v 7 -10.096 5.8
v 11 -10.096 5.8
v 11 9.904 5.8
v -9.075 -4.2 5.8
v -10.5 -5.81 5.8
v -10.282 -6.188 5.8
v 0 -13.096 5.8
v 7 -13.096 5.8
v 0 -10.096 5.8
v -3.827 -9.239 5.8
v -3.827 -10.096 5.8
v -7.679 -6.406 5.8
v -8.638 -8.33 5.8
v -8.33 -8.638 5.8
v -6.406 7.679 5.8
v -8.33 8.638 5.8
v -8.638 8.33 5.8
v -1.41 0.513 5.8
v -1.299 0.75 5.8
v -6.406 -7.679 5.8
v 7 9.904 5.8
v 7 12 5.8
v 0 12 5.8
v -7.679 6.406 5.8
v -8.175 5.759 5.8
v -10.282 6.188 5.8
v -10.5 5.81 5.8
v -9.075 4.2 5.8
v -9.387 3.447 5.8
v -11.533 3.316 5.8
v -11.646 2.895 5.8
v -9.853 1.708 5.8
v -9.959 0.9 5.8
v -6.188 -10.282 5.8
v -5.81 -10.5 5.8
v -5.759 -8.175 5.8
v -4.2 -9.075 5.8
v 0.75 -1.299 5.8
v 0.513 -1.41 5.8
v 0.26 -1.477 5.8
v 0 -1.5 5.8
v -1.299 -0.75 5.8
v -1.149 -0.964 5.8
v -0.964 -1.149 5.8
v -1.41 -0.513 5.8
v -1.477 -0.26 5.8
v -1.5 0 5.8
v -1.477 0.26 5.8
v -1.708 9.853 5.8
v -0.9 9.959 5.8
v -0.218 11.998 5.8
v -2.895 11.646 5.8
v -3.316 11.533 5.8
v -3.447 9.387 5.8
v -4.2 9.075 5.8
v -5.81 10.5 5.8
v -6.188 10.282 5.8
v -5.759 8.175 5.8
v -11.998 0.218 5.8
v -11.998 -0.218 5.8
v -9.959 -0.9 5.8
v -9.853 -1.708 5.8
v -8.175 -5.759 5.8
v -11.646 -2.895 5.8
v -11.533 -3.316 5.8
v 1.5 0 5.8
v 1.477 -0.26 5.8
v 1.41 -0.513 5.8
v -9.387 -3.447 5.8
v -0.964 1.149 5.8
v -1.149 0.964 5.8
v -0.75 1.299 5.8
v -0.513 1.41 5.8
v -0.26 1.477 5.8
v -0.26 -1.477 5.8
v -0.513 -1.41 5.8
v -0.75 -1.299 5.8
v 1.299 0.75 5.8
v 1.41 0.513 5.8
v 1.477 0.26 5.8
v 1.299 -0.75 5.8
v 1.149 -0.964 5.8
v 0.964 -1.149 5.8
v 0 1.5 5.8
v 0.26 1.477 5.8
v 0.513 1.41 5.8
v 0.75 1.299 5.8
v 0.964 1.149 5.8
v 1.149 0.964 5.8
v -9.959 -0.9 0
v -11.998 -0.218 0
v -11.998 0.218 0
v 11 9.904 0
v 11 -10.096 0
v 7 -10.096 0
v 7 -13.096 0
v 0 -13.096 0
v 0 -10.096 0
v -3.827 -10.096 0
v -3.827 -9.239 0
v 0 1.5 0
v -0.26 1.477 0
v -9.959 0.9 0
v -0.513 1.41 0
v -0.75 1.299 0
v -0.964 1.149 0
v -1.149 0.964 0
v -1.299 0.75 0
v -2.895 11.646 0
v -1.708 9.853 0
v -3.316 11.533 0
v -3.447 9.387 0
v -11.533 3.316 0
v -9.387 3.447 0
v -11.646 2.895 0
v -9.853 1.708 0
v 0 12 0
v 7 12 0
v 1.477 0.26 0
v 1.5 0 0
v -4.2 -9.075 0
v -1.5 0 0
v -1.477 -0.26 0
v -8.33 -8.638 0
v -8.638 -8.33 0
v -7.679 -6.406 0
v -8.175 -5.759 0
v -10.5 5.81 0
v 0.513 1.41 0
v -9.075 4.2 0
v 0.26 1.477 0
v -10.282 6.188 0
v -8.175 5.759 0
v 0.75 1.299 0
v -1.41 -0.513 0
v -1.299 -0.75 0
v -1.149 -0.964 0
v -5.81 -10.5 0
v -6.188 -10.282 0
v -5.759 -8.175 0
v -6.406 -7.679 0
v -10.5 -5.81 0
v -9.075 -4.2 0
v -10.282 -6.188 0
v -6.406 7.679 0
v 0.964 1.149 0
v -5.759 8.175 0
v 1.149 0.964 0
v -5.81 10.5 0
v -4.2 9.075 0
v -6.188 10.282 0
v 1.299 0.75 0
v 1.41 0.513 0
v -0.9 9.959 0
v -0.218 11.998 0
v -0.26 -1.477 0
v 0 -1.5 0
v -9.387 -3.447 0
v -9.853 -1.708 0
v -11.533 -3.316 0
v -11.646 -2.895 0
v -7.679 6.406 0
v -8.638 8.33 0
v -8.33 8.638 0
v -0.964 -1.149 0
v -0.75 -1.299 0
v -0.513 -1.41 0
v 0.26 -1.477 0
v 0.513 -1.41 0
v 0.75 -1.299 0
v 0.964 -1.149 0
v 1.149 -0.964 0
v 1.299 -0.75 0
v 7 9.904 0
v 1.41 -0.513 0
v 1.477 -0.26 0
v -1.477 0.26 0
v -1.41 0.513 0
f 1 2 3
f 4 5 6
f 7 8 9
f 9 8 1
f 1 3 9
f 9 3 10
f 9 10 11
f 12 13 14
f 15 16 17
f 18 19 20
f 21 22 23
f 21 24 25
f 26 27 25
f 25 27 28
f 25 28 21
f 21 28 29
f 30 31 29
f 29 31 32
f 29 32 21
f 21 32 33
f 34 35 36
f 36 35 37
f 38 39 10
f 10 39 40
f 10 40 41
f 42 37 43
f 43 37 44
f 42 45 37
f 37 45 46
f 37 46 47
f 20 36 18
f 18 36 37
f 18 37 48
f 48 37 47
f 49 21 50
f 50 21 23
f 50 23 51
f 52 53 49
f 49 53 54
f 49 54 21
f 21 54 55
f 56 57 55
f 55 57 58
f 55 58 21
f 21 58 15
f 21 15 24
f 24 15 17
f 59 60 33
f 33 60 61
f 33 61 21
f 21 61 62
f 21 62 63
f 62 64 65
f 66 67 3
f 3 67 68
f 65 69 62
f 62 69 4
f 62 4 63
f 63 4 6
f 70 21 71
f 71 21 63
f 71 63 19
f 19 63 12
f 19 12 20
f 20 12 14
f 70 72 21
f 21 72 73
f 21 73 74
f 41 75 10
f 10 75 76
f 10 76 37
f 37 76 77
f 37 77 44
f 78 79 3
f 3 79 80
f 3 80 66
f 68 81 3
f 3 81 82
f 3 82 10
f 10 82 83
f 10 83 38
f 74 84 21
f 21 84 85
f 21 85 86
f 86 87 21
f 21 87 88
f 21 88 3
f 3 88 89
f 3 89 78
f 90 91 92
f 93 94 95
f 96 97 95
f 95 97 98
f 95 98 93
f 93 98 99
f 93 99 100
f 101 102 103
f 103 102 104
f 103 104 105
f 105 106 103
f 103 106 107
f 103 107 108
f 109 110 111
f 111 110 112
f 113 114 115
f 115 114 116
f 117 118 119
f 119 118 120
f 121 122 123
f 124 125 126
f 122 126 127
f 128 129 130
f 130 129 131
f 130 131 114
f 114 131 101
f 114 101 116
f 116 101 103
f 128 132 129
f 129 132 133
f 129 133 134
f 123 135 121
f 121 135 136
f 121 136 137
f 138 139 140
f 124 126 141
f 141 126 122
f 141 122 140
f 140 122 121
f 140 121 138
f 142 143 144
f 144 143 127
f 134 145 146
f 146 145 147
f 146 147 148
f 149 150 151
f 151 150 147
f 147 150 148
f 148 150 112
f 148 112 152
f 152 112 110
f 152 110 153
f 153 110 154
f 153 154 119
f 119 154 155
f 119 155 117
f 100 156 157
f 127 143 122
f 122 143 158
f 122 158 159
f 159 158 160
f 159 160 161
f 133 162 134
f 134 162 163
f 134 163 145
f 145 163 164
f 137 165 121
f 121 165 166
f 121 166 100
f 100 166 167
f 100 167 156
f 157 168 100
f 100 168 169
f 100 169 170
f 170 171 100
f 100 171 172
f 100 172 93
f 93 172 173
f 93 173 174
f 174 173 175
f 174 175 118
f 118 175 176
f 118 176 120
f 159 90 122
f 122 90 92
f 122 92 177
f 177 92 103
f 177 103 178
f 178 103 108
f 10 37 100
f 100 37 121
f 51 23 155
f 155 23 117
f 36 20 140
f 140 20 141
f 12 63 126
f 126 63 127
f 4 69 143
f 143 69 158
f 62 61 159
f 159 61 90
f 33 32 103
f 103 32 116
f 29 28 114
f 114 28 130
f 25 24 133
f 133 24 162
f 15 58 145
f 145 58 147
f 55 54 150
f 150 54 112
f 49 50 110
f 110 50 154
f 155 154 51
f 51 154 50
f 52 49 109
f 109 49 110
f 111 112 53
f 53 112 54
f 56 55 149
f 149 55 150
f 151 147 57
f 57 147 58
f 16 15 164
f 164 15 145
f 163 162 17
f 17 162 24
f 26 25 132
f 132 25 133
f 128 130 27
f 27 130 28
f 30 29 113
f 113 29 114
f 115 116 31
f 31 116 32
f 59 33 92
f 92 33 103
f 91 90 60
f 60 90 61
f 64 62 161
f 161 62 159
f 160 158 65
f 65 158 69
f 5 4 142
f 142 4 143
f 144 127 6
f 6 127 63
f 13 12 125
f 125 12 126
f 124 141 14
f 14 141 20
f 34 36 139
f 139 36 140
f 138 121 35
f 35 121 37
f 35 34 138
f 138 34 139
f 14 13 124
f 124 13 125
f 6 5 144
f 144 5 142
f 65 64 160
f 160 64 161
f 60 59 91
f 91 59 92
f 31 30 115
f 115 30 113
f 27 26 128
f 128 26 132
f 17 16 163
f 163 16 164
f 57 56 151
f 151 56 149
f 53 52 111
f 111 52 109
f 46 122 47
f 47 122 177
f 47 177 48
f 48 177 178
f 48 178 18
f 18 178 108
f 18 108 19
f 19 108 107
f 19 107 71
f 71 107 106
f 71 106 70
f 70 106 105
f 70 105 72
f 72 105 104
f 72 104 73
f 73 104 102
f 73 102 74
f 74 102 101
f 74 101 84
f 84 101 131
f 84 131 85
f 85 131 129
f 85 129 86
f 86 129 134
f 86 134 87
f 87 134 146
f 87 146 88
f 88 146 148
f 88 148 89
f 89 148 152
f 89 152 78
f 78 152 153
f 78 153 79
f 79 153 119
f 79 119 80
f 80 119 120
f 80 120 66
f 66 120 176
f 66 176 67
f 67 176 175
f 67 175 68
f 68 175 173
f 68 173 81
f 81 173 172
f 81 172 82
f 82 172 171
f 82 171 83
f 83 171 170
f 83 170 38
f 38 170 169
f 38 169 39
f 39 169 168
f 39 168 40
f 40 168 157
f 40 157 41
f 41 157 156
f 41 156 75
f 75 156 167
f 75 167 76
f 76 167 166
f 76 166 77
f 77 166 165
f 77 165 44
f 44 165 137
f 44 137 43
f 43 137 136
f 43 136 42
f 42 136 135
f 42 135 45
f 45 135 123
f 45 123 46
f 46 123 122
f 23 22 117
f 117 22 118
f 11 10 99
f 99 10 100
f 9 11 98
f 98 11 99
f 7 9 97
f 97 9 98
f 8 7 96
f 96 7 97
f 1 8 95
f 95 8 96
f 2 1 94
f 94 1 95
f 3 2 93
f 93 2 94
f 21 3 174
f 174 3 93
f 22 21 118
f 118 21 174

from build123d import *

# Parameters (mm, degrees)
SKETCH1_R           = 10
BOSS_EXTRUDE1_DEPTH = 5.8
BOSS_EXTRUDE2_DEPTH = 5.8
CIRPATTERN1_COUNT   = 24
SKETCH3_R           = 12.65
SKETCH3_R_2         = 12
CUT_EXTRUDE1_DEPTH  = 6
CUT_EXTRUDE2_DEPTH  = 6
SKETCH5_R           = 1.5
CUT_EXTRUDE3_DEPTH  = 6
BOSS_EXTRUDE3_DEPTH = 5.8


with BuildPart() as part:
    # Sketch1 → Boss-Extrude1 (new body)
    with BuildSketch(Plane.XY):
        Circle(SKETCH1_R)
    extrude(amount=BOSS_EXTRUDE1_DEPTH)

    # Sketch2 → Boss-Extrude2 (add)
    with BuildSketch(Plane.XY):
        with BuildLine():
            Line((0, 12.65), (-0.9, 9.959417654))
            ThreePointArc((-0.9, 9.959417654), (0, 10), (0.9, 9.959417654))
            Line((0.9, 9.959417654), (0, 12.65))
        make_face()
    boss_extrude2 = extrude(amount=BOSS_EXTRUDE2_DEPTH)

    # CirPattern1: Boss-Extrude2 ×24 about axis
    cirpattern1_axis = Axis((0, 0, 0), (0, 0, 1))
    for i in range(1, CIRPATTERN1_COUNT):
        add(boss_extrude2.rotate(cirpattern1_axis, i * 360 / CIRPATTERN1_COUNT))

    # Sketch3 → Cut-Extrude1 (cut)
    with BuildSketch(Plane.XY):
        Circle(SKETCH3_R)
        Circle(SKETCH3_R_2, mode=Mode.SUBTRACT)
    extrude(amount=CUT_EXTRUDE1_DEPTH, mode=Mode.SUBTRACT)

    # Sketch4 → Cut-Extrude2 (cut)
    with BuildSketch(Plane.XY):
        with BuildLine():
            Line((0, 0), (0, 12))
            ThreePointArc((0, 12), (11.769423365, -2.341083864), (-4.592201188, -11.08655439))
            Line((-4.592201188, -11.08655439), (-3.826834324, -9.238795325))
            Line((-3.826834324, -9.238795325), (0, 0))
        make_face()
    extrude(amount=CUT_EXTRUDE2_DEPTH, mode=Mode.SUBTRACT)

    # Sketch5 → Cut-Extrude3 (cut)
    with BuildSketch(Plane.XY):
        Circle(SKETCH5_R)
    extrude(amount=CUT_EXTRUDE3_DEPTH, mode=Mode.SUBTRACT)

    # Sketch6 → Boss-Extrude3 (add)
    with BuildSketch(Plane.XY):
        with BuildLine():
            Line((0, 1.5), (0, 12))
            Line((0, 12), (7, 12))
            Line((7, 12), (7, 9.904493766))
            Line((7, 9.904493766), (11, 9.904493766))
            Line((11, 9.904493766), (11, -10.095506234))
            Line((11, -10.095506234), (7, -10.095506234))
            Line((7, -10.095506234), (7, -13.095506234))
            Line((7, -13.095506234), (0, -13.095506234))
            Line((0, -13.095506234), (0, -10.095506234))
            Line((0, -10.095506234), (-3.826834324, -10.095506234))
            Line((-3.826834324, -10.095506234), (-3.826834324, -9.238795325))
            Line((-3.826834324, -9.238795325), (-0.574025149, -1.385819299))
            ThreePointArc((-0.574025149, -1.385819299), (1.471177921, -0.292635483), (0, 1.5))
        make_face()
    extrude(amount=BOSS_EXTRUDE3_DEPTH)


solid = part.part
